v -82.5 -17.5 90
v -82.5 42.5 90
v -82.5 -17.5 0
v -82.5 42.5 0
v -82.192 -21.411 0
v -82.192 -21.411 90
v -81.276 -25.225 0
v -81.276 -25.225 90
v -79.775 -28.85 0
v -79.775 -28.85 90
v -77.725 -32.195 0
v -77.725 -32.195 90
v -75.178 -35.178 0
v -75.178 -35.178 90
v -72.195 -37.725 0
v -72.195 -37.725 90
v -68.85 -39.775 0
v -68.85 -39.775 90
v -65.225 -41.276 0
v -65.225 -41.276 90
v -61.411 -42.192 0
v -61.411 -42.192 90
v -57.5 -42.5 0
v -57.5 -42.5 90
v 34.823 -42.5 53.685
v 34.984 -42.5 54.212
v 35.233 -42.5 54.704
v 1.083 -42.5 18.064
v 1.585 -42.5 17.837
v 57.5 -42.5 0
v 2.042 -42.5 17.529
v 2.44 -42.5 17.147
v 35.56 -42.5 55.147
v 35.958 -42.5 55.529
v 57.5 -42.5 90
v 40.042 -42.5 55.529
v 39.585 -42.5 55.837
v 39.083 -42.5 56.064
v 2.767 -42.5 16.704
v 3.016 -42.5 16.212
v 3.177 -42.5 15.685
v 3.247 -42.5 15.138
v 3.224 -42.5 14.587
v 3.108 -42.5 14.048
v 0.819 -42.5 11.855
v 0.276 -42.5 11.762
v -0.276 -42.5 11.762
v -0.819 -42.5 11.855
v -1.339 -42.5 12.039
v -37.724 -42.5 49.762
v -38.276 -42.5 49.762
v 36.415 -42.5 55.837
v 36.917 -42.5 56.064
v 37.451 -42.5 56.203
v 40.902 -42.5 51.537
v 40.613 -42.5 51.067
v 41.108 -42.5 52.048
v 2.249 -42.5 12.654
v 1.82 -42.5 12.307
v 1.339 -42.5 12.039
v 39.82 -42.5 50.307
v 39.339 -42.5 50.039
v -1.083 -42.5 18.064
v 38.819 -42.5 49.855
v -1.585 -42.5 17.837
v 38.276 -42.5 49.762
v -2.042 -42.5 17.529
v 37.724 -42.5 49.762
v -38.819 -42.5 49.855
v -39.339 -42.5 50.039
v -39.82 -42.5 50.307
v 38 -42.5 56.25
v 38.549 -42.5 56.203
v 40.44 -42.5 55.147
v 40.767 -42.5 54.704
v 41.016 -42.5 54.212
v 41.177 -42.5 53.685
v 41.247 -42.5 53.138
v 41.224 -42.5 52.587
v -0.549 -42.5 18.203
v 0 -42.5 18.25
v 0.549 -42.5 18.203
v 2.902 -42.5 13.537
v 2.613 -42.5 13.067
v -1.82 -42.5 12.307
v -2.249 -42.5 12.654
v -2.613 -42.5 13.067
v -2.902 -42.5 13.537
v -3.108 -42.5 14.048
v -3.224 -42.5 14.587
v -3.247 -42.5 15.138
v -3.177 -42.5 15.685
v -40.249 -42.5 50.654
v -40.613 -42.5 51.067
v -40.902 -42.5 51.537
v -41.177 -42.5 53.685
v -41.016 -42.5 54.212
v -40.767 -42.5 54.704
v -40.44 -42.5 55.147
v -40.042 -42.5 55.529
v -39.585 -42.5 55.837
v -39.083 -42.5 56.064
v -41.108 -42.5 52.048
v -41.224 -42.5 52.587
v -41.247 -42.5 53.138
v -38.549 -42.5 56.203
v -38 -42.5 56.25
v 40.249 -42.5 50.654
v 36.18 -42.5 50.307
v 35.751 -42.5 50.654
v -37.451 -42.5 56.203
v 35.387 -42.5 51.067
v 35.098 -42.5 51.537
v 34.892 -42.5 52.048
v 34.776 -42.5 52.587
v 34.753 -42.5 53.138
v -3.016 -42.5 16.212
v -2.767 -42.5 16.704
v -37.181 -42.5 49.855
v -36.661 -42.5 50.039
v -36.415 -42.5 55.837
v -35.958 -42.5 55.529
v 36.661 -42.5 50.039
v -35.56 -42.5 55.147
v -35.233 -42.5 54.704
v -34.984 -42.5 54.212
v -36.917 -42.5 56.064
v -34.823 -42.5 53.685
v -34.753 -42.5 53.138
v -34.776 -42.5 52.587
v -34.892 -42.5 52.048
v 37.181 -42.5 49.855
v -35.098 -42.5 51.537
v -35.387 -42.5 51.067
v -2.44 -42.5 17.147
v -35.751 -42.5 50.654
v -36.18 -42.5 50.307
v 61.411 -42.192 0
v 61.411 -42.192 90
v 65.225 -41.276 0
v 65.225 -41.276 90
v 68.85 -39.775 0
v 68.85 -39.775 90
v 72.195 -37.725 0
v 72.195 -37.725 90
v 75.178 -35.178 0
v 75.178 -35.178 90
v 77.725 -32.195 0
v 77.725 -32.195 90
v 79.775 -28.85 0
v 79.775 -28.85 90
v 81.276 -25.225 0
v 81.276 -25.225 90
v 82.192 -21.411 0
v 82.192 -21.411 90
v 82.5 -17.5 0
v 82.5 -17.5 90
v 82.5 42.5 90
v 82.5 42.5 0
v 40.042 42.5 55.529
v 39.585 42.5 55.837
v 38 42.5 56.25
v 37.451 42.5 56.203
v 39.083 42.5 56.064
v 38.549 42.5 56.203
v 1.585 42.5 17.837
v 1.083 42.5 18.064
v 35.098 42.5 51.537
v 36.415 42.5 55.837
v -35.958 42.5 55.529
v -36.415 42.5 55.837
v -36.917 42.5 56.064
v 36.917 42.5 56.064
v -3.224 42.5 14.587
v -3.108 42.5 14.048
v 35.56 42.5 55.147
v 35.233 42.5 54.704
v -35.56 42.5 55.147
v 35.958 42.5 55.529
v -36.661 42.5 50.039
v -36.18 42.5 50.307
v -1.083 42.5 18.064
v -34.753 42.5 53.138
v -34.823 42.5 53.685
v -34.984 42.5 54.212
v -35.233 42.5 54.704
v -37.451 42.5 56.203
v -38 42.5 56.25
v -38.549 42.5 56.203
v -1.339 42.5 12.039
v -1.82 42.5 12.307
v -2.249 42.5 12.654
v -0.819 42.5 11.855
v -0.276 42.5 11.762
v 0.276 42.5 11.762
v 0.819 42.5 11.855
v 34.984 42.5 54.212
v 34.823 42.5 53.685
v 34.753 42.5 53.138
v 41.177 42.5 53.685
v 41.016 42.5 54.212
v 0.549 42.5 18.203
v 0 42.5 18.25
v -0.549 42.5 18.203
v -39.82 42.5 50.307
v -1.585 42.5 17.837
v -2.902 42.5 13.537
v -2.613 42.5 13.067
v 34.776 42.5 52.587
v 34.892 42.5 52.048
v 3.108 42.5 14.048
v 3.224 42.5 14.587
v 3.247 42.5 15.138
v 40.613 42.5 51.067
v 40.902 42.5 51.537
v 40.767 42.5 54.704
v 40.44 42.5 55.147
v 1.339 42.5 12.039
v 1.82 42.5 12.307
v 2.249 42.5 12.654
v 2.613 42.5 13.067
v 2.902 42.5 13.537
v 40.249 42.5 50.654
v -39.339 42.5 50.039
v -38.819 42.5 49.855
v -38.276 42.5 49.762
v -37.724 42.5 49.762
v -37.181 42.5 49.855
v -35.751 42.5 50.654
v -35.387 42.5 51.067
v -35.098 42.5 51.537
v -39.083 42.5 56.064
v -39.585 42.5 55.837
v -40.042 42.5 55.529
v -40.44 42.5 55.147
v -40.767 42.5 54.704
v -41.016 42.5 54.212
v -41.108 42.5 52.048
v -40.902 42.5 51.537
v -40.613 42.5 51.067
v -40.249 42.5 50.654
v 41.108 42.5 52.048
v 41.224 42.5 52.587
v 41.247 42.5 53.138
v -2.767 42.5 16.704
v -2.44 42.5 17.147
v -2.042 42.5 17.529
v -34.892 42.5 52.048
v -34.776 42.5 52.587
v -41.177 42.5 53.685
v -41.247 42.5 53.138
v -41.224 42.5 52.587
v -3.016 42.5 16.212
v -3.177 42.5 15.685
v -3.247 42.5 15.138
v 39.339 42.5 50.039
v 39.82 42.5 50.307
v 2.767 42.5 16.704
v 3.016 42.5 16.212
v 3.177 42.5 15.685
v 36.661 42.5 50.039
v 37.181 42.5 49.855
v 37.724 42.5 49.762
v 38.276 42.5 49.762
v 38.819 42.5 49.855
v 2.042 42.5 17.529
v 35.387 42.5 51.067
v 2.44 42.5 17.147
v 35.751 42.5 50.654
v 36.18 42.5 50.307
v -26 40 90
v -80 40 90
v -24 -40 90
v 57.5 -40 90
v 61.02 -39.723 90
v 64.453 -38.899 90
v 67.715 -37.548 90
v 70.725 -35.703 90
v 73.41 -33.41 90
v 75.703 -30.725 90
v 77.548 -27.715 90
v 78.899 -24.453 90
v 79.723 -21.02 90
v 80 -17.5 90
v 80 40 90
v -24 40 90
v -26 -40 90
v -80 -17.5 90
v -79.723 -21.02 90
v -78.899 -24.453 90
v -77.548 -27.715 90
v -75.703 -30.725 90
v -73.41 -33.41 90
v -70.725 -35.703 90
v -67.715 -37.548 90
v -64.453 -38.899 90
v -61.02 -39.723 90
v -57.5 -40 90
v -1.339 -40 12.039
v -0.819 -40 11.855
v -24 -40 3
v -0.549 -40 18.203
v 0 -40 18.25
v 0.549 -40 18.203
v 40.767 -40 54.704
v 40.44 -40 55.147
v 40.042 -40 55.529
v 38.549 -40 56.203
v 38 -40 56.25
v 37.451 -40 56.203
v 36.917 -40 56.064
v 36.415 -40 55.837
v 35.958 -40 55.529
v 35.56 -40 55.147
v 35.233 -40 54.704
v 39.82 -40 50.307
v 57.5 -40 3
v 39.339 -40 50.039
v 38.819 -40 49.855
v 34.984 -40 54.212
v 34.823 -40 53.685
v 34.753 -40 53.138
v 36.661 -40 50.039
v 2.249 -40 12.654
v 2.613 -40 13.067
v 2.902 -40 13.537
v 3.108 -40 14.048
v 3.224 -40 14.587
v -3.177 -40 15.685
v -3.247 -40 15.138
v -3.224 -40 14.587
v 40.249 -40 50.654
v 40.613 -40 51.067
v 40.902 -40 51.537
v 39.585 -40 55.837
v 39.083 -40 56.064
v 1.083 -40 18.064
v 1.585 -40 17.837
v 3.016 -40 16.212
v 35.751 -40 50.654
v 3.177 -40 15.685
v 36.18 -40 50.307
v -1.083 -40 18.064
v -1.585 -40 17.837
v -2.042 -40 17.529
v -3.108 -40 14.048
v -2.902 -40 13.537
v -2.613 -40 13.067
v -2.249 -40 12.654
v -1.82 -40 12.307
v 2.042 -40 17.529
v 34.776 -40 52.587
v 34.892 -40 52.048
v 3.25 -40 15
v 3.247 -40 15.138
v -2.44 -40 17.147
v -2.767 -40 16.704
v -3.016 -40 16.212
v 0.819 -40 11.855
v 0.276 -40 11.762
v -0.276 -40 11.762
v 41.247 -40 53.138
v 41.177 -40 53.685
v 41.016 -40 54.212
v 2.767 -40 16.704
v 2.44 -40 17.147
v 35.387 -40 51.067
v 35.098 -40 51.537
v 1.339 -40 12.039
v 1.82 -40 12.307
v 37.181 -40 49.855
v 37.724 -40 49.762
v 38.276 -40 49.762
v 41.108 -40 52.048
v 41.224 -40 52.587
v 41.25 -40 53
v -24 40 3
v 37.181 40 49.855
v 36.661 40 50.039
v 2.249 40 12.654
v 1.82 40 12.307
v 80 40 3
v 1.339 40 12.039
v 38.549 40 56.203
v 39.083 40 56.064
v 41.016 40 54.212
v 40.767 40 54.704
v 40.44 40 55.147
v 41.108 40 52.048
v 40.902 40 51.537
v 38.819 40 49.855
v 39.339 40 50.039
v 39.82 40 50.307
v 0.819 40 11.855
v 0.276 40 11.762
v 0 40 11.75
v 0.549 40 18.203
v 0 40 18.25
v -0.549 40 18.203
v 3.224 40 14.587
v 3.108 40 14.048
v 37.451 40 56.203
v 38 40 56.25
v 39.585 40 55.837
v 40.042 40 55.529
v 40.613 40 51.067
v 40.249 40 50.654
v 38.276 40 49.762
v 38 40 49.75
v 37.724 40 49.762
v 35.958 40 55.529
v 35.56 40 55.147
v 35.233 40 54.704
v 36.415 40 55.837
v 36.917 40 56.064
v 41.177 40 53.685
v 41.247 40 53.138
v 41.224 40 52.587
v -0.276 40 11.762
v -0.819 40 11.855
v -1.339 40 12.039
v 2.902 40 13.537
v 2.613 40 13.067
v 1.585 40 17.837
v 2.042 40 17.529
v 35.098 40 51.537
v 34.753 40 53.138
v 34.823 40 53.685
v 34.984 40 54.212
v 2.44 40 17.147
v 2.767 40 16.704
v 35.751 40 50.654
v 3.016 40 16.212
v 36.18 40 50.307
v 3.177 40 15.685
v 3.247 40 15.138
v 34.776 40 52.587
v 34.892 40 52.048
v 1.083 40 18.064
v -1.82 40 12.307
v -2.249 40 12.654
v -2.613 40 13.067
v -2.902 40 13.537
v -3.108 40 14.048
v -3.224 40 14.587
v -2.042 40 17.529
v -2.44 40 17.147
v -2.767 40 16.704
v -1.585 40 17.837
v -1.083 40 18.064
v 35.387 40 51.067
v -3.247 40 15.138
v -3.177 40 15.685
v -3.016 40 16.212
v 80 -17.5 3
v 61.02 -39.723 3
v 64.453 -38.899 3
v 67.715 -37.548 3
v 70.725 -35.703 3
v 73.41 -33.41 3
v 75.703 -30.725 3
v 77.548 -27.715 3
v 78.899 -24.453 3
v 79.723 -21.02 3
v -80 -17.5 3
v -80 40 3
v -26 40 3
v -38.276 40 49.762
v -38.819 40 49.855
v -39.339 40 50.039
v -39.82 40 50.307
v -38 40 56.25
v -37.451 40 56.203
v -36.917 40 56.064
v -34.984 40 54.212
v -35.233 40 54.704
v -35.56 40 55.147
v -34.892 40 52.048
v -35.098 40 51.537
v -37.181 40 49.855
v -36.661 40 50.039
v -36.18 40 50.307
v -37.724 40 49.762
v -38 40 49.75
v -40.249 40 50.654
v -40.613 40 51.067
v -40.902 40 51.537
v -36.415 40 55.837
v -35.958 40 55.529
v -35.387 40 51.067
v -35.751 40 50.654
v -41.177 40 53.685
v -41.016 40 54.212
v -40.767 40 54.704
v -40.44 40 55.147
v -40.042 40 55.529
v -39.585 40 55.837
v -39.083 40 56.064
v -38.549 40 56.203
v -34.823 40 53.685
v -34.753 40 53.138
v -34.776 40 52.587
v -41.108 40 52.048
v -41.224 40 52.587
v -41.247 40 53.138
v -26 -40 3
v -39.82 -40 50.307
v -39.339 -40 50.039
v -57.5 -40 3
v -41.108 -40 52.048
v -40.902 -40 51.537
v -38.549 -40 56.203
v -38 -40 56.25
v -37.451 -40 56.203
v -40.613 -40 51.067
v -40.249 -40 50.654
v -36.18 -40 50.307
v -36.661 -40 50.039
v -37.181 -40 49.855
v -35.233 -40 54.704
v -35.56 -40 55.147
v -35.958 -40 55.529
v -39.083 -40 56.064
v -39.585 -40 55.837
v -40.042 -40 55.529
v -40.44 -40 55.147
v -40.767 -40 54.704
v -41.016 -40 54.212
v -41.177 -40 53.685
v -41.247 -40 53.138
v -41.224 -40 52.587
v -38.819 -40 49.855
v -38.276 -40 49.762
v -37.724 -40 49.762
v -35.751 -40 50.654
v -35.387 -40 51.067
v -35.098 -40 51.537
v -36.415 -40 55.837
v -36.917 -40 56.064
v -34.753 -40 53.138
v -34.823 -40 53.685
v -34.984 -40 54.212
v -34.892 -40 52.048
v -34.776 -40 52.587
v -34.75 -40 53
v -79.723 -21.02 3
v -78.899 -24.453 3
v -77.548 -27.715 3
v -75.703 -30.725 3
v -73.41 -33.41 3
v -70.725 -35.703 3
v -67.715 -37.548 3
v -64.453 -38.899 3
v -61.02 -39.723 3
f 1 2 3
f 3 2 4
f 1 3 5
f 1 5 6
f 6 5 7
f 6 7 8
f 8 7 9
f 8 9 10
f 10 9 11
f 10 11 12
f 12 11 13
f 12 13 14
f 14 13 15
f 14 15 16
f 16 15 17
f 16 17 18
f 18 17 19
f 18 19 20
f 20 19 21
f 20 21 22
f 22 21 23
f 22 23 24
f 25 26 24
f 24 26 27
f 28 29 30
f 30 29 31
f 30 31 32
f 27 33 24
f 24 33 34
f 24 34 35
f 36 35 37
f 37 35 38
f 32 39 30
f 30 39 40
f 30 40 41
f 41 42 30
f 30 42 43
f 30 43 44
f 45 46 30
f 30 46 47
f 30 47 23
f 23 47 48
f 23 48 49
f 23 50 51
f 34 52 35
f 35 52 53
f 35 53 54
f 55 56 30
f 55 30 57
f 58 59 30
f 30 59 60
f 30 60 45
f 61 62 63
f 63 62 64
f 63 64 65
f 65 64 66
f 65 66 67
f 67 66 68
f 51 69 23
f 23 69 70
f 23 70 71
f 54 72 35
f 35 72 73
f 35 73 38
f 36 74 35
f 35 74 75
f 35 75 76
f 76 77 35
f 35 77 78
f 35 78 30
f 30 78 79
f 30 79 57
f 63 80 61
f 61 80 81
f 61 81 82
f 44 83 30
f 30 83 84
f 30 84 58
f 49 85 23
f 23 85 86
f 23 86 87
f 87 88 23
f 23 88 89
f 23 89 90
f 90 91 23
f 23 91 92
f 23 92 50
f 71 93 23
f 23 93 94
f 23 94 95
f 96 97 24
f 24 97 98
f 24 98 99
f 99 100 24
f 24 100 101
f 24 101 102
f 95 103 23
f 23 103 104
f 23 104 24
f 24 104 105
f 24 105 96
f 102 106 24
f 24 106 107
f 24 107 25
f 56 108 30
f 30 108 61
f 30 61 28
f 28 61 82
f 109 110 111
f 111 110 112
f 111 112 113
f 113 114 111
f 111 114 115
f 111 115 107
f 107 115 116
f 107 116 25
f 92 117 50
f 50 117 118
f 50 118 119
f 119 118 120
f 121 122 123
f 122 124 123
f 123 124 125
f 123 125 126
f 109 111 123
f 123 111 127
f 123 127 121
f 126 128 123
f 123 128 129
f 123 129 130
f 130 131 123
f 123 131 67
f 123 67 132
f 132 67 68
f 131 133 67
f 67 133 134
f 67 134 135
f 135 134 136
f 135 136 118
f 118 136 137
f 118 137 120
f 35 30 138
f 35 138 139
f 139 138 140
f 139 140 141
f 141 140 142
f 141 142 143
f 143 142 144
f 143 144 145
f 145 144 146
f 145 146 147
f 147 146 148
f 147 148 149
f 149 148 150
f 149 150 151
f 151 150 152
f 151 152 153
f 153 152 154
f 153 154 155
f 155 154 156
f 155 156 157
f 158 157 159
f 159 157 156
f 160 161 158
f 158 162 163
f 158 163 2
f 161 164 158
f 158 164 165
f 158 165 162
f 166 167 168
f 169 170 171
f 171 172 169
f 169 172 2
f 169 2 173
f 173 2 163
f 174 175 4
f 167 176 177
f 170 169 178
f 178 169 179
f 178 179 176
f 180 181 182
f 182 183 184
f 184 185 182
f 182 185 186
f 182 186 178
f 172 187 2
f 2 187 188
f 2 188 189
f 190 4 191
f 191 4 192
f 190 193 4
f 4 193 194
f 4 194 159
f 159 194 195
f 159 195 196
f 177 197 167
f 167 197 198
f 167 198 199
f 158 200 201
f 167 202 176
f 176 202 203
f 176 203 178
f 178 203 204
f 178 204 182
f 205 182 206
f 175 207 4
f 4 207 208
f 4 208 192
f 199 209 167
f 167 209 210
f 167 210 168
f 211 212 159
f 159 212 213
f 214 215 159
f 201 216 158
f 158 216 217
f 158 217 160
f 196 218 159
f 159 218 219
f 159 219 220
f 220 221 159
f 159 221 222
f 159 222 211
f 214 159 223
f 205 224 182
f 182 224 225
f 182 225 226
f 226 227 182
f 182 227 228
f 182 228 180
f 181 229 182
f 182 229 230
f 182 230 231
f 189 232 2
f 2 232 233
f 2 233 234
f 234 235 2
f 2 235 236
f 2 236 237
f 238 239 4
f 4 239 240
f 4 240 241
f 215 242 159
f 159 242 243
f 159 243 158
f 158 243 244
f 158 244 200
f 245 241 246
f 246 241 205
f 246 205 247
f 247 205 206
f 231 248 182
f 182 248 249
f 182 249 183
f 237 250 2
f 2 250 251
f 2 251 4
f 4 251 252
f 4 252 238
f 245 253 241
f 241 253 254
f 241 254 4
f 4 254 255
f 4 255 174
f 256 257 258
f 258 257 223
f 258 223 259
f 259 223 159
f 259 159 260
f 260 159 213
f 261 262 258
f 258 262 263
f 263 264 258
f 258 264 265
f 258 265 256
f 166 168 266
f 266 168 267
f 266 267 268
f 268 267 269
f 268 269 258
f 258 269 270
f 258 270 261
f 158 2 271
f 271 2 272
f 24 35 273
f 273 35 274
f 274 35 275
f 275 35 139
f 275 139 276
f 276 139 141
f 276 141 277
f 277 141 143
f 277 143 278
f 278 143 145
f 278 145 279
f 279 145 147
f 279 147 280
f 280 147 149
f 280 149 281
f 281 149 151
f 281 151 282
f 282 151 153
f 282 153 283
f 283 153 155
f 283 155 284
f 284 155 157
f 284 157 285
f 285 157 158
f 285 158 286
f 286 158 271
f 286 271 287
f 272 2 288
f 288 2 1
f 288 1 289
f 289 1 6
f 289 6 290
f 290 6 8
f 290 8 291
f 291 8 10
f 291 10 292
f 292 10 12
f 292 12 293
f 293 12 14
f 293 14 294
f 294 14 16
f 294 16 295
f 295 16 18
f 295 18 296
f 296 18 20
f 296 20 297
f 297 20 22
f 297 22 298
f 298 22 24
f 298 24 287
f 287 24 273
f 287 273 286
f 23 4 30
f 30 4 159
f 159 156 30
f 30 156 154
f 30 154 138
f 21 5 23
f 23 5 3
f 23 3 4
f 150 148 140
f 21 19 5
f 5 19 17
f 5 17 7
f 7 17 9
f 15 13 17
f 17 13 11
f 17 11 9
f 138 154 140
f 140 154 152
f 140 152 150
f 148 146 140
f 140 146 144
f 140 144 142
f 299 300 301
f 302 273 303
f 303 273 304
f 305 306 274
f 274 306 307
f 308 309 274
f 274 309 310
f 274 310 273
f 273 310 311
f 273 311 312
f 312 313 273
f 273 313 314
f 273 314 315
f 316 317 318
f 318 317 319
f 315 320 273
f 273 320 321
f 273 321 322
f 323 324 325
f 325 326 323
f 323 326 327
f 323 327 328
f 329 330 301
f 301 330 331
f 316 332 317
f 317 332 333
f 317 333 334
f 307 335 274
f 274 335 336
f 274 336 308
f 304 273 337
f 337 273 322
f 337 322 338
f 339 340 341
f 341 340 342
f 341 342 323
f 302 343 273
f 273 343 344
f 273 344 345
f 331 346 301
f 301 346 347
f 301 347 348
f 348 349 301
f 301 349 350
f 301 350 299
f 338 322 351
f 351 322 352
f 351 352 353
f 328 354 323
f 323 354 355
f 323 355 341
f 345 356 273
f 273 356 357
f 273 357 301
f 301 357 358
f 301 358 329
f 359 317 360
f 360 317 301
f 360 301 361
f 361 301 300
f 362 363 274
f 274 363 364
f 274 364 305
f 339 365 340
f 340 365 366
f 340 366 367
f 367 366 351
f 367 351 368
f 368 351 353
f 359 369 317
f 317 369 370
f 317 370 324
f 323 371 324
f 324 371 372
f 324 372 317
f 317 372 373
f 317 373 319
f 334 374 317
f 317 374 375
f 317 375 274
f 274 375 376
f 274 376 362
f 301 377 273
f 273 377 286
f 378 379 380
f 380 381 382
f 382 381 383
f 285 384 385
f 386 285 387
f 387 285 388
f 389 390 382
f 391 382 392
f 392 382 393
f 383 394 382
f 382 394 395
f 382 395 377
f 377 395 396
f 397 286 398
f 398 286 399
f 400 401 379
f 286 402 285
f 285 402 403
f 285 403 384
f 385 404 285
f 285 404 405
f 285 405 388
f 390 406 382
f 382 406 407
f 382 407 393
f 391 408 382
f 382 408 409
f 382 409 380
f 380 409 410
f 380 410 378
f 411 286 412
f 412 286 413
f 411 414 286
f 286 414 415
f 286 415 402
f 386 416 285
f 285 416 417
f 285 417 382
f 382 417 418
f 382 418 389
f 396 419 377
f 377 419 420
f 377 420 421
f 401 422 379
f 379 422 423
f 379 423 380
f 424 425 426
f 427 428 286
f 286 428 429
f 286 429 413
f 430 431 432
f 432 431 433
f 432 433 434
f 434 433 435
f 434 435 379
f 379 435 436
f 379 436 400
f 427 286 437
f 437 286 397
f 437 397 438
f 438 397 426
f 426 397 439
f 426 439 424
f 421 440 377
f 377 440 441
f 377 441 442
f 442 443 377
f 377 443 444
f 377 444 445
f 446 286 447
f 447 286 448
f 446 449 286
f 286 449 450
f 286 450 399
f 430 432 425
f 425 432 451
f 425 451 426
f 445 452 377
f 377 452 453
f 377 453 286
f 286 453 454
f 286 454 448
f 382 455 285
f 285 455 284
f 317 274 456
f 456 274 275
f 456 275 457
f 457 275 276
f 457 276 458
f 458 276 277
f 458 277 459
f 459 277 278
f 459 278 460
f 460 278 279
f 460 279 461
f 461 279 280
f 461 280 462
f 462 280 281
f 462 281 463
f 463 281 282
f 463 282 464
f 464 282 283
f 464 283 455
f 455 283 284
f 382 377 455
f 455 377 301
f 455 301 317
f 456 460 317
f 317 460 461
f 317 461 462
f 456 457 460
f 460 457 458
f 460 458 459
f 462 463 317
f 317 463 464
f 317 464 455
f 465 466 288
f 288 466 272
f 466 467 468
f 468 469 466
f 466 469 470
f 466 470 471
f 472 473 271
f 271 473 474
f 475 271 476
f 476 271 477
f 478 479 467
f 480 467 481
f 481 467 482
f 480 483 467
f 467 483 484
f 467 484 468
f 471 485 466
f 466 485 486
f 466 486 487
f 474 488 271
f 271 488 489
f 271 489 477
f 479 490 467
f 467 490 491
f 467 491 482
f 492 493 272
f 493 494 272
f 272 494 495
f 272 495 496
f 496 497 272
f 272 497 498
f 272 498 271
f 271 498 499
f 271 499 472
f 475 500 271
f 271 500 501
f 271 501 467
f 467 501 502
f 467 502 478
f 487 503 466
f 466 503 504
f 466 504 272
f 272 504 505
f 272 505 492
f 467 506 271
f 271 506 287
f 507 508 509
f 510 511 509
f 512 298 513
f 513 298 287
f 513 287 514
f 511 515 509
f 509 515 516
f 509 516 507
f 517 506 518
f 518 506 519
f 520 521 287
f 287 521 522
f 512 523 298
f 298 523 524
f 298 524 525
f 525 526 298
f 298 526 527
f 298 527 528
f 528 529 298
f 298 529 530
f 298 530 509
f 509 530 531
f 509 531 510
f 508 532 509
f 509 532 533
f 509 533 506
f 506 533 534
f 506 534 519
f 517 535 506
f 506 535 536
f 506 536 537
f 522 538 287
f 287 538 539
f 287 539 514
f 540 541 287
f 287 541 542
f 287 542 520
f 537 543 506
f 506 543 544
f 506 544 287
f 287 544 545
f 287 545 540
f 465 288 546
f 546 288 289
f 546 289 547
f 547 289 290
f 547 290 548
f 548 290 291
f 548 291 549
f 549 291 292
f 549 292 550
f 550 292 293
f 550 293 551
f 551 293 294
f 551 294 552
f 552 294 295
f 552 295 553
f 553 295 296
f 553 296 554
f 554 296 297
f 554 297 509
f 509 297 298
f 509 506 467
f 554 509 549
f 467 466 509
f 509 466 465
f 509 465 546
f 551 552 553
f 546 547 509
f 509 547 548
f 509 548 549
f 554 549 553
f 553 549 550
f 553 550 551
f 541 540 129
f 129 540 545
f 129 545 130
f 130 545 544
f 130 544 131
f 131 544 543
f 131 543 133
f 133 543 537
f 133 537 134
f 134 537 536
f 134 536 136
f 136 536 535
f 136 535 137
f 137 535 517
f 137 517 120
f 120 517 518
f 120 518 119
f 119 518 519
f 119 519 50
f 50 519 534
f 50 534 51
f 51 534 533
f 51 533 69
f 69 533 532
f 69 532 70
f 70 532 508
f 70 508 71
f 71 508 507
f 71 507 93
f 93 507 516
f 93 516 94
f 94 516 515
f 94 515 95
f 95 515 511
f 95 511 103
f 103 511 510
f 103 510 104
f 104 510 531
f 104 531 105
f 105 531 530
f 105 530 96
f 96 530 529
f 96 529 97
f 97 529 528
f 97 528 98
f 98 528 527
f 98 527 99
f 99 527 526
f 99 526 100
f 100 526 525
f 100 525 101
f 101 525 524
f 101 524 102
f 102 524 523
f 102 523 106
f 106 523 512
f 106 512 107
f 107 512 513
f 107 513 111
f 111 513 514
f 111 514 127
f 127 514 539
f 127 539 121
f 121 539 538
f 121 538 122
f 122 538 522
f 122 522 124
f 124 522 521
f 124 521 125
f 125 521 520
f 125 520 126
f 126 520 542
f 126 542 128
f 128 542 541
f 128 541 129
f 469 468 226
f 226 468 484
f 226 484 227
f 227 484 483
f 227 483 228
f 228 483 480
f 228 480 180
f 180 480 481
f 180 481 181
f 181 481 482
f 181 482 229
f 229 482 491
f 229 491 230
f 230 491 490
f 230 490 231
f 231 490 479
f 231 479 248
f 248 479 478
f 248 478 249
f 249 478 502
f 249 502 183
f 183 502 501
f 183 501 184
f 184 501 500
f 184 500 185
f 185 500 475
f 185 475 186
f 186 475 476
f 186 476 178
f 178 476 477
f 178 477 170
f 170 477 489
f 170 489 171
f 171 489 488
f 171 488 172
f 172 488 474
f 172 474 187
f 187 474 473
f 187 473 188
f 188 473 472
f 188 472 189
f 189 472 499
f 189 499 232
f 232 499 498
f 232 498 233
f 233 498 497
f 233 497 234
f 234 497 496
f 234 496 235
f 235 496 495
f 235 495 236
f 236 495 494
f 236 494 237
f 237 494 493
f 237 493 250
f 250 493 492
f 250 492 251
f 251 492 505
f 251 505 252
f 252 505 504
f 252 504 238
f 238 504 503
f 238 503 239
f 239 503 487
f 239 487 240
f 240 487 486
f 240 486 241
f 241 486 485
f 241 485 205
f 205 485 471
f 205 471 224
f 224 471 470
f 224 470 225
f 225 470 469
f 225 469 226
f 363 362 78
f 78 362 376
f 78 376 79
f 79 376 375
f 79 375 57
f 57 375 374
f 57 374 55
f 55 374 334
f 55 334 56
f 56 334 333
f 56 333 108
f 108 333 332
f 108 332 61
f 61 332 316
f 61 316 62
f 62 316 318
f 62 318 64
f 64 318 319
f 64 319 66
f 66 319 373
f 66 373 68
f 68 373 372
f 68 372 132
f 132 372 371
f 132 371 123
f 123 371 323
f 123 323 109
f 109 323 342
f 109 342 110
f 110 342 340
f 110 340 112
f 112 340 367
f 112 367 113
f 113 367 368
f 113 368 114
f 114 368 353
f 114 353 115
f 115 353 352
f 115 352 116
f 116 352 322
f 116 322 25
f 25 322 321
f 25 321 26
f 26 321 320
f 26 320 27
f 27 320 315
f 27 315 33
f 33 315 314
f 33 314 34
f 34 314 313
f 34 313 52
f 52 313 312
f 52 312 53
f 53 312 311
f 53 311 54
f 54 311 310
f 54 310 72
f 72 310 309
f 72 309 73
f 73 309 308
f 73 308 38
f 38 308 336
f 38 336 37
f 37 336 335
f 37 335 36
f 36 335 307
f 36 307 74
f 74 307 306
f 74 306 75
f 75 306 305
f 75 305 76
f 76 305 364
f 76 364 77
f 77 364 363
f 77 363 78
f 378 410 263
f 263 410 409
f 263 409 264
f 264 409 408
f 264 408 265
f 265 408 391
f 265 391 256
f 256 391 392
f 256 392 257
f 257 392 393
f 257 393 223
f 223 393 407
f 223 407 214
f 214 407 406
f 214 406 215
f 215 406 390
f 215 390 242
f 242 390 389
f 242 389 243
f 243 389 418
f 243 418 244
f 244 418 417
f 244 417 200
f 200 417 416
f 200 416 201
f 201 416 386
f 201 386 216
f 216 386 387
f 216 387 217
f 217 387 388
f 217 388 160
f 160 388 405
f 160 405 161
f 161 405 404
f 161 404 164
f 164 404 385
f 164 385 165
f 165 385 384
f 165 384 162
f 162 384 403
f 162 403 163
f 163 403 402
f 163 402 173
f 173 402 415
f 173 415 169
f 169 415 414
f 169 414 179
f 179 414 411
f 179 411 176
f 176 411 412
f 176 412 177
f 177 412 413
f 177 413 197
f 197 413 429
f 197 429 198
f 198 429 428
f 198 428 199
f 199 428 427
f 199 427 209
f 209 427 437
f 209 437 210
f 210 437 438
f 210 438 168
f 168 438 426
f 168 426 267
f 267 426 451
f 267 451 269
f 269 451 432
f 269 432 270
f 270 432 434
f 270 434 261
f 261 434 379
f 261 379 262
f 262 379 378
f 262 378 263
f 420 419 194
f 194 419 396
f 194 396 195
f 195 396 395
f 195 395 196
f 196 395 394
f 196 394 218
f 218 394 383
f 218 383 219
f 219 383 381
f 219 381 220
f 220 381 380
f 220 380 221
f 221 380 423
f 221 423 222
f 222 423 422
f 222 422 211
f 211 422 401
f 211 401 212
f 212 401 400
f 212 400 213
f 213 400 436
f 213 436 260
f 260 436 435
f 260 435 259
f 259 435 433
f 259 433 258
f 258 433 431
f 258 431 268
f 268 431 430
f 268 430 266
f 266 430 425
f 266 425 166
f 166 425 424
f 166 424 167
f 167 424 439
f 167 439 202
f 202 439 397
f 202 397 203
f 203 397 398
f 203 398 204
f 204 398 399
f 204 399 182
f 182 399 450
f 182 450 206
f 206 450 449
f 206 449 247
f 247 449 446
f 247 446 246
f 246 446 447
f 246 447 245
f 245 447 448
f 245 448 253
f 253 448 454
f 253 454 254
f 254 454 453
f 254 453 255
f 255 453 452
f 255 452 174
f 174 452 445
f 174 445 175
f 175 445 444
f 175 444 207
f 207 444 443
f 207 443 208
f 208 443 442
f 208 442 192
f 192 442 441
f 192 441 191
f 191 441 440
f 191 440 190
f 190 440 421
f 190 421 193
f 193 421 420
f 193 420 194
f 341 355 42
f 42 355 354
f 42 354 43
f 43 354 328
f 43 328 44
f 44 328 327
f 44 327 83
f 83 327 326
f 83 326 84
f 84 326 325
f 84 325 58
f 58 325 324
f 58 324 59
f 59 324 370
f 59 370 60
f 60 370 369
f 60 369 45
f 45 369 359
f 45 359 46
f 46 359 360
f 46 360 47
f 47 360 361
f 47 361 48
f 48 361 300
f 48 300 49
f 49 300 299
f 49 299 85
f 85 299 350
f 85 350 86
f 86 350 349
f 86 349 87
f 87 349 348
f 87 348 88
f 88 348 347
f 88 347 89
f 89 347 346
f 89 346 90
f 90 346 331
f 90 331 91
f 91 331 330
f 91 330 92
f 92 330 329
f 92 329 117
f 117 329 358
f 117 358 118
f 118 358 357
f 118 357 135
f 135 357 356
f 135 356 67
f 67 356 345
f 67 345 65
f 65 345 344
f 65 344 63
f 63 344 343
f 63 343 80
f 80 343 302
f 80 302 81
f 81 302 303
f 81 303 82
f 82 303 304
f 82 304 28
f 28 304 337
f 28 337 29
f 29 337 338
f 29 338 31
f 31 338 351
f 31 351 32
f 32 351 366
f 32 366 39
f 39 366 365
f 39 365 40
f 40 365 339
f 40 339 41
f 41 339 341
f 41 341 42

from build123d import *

# Parameters (mm, degrees)
P_IDAT_VYSUNUT_M1_DEPTH       = 90
ODEBRAT_VYSUNUT_M1_DEPTH      = 87
D_RY_PRO_KOL_K_VELIKOST_MM1_D = 6.5


with BuildPart() as part:
    # Skica1 → Přidat vysunutím1 (new body)
    with BuildSketch(Plane.XY):
        with BuildLine():
            Line((-82.5, 42.5), (82.5, 42.5))
            Line((82.5, 42.5), (82.5, -17.5))
            ThreePointArc((82.5, -17.5), (75.17766953, -35.17766953), (57.5, -42.5))
            Line((57.5, -42.5), (-57.5, -42.5))
            ThreePointArc((-57.5, -42.5), (-75.17766953, -35.17766953), (-82.5, -17.5))
            Line((-82.5, -17.5), (-82.5, 42.5))
        make_face()
    extrude(amount=P_IDAT_VYSUNUT_M1_DEPTH)

    # Skica2 → Odebrat vysunutím1 (cut)
    with BuildSketch(Plane.XY.offset(90)):
        with BuildLine():
            Line((80, -17.5), (80, 40))
            Line((80, 40), (-24, 40))
            Line((-24, 40), (-24, -40))
            Line((-24, -40), (57.5, -40))
            ThreePointArc((57.5, -40), (73.409902577, -33.409902577), (80, -17.5))
        make_face()
        with BuildLine():
            Line((-26, -40), (-26, 40))
            Line((-26, 40), (-80, 40))
            Line((-80, 40), (-80, -17.5))
            ThreePointArc((-80, -17.5), (-73.409902577, -33.409902577), (-57.5, -40))
            Line((-57.5, -40), (-26, -40))
        make_face()
    extrude(amount=-ODEBRAT_VYSUNUT_M1_DEPTH, mode=Mode.SUBTRACT)

    # Díry pro kolík, velikost mm1 (through all)
    with Locations(Plane(origin=(0, 42.5, 0), x_dir=(1, 0, 0), z_dir=(0, 1, 0))):
        with Locations((0, -15), (38, -53), (-38, -53)):
            Hole(D_RY_PRO_KOL_K_VELIKOST_MM1_D / 2)


solid = part.part
